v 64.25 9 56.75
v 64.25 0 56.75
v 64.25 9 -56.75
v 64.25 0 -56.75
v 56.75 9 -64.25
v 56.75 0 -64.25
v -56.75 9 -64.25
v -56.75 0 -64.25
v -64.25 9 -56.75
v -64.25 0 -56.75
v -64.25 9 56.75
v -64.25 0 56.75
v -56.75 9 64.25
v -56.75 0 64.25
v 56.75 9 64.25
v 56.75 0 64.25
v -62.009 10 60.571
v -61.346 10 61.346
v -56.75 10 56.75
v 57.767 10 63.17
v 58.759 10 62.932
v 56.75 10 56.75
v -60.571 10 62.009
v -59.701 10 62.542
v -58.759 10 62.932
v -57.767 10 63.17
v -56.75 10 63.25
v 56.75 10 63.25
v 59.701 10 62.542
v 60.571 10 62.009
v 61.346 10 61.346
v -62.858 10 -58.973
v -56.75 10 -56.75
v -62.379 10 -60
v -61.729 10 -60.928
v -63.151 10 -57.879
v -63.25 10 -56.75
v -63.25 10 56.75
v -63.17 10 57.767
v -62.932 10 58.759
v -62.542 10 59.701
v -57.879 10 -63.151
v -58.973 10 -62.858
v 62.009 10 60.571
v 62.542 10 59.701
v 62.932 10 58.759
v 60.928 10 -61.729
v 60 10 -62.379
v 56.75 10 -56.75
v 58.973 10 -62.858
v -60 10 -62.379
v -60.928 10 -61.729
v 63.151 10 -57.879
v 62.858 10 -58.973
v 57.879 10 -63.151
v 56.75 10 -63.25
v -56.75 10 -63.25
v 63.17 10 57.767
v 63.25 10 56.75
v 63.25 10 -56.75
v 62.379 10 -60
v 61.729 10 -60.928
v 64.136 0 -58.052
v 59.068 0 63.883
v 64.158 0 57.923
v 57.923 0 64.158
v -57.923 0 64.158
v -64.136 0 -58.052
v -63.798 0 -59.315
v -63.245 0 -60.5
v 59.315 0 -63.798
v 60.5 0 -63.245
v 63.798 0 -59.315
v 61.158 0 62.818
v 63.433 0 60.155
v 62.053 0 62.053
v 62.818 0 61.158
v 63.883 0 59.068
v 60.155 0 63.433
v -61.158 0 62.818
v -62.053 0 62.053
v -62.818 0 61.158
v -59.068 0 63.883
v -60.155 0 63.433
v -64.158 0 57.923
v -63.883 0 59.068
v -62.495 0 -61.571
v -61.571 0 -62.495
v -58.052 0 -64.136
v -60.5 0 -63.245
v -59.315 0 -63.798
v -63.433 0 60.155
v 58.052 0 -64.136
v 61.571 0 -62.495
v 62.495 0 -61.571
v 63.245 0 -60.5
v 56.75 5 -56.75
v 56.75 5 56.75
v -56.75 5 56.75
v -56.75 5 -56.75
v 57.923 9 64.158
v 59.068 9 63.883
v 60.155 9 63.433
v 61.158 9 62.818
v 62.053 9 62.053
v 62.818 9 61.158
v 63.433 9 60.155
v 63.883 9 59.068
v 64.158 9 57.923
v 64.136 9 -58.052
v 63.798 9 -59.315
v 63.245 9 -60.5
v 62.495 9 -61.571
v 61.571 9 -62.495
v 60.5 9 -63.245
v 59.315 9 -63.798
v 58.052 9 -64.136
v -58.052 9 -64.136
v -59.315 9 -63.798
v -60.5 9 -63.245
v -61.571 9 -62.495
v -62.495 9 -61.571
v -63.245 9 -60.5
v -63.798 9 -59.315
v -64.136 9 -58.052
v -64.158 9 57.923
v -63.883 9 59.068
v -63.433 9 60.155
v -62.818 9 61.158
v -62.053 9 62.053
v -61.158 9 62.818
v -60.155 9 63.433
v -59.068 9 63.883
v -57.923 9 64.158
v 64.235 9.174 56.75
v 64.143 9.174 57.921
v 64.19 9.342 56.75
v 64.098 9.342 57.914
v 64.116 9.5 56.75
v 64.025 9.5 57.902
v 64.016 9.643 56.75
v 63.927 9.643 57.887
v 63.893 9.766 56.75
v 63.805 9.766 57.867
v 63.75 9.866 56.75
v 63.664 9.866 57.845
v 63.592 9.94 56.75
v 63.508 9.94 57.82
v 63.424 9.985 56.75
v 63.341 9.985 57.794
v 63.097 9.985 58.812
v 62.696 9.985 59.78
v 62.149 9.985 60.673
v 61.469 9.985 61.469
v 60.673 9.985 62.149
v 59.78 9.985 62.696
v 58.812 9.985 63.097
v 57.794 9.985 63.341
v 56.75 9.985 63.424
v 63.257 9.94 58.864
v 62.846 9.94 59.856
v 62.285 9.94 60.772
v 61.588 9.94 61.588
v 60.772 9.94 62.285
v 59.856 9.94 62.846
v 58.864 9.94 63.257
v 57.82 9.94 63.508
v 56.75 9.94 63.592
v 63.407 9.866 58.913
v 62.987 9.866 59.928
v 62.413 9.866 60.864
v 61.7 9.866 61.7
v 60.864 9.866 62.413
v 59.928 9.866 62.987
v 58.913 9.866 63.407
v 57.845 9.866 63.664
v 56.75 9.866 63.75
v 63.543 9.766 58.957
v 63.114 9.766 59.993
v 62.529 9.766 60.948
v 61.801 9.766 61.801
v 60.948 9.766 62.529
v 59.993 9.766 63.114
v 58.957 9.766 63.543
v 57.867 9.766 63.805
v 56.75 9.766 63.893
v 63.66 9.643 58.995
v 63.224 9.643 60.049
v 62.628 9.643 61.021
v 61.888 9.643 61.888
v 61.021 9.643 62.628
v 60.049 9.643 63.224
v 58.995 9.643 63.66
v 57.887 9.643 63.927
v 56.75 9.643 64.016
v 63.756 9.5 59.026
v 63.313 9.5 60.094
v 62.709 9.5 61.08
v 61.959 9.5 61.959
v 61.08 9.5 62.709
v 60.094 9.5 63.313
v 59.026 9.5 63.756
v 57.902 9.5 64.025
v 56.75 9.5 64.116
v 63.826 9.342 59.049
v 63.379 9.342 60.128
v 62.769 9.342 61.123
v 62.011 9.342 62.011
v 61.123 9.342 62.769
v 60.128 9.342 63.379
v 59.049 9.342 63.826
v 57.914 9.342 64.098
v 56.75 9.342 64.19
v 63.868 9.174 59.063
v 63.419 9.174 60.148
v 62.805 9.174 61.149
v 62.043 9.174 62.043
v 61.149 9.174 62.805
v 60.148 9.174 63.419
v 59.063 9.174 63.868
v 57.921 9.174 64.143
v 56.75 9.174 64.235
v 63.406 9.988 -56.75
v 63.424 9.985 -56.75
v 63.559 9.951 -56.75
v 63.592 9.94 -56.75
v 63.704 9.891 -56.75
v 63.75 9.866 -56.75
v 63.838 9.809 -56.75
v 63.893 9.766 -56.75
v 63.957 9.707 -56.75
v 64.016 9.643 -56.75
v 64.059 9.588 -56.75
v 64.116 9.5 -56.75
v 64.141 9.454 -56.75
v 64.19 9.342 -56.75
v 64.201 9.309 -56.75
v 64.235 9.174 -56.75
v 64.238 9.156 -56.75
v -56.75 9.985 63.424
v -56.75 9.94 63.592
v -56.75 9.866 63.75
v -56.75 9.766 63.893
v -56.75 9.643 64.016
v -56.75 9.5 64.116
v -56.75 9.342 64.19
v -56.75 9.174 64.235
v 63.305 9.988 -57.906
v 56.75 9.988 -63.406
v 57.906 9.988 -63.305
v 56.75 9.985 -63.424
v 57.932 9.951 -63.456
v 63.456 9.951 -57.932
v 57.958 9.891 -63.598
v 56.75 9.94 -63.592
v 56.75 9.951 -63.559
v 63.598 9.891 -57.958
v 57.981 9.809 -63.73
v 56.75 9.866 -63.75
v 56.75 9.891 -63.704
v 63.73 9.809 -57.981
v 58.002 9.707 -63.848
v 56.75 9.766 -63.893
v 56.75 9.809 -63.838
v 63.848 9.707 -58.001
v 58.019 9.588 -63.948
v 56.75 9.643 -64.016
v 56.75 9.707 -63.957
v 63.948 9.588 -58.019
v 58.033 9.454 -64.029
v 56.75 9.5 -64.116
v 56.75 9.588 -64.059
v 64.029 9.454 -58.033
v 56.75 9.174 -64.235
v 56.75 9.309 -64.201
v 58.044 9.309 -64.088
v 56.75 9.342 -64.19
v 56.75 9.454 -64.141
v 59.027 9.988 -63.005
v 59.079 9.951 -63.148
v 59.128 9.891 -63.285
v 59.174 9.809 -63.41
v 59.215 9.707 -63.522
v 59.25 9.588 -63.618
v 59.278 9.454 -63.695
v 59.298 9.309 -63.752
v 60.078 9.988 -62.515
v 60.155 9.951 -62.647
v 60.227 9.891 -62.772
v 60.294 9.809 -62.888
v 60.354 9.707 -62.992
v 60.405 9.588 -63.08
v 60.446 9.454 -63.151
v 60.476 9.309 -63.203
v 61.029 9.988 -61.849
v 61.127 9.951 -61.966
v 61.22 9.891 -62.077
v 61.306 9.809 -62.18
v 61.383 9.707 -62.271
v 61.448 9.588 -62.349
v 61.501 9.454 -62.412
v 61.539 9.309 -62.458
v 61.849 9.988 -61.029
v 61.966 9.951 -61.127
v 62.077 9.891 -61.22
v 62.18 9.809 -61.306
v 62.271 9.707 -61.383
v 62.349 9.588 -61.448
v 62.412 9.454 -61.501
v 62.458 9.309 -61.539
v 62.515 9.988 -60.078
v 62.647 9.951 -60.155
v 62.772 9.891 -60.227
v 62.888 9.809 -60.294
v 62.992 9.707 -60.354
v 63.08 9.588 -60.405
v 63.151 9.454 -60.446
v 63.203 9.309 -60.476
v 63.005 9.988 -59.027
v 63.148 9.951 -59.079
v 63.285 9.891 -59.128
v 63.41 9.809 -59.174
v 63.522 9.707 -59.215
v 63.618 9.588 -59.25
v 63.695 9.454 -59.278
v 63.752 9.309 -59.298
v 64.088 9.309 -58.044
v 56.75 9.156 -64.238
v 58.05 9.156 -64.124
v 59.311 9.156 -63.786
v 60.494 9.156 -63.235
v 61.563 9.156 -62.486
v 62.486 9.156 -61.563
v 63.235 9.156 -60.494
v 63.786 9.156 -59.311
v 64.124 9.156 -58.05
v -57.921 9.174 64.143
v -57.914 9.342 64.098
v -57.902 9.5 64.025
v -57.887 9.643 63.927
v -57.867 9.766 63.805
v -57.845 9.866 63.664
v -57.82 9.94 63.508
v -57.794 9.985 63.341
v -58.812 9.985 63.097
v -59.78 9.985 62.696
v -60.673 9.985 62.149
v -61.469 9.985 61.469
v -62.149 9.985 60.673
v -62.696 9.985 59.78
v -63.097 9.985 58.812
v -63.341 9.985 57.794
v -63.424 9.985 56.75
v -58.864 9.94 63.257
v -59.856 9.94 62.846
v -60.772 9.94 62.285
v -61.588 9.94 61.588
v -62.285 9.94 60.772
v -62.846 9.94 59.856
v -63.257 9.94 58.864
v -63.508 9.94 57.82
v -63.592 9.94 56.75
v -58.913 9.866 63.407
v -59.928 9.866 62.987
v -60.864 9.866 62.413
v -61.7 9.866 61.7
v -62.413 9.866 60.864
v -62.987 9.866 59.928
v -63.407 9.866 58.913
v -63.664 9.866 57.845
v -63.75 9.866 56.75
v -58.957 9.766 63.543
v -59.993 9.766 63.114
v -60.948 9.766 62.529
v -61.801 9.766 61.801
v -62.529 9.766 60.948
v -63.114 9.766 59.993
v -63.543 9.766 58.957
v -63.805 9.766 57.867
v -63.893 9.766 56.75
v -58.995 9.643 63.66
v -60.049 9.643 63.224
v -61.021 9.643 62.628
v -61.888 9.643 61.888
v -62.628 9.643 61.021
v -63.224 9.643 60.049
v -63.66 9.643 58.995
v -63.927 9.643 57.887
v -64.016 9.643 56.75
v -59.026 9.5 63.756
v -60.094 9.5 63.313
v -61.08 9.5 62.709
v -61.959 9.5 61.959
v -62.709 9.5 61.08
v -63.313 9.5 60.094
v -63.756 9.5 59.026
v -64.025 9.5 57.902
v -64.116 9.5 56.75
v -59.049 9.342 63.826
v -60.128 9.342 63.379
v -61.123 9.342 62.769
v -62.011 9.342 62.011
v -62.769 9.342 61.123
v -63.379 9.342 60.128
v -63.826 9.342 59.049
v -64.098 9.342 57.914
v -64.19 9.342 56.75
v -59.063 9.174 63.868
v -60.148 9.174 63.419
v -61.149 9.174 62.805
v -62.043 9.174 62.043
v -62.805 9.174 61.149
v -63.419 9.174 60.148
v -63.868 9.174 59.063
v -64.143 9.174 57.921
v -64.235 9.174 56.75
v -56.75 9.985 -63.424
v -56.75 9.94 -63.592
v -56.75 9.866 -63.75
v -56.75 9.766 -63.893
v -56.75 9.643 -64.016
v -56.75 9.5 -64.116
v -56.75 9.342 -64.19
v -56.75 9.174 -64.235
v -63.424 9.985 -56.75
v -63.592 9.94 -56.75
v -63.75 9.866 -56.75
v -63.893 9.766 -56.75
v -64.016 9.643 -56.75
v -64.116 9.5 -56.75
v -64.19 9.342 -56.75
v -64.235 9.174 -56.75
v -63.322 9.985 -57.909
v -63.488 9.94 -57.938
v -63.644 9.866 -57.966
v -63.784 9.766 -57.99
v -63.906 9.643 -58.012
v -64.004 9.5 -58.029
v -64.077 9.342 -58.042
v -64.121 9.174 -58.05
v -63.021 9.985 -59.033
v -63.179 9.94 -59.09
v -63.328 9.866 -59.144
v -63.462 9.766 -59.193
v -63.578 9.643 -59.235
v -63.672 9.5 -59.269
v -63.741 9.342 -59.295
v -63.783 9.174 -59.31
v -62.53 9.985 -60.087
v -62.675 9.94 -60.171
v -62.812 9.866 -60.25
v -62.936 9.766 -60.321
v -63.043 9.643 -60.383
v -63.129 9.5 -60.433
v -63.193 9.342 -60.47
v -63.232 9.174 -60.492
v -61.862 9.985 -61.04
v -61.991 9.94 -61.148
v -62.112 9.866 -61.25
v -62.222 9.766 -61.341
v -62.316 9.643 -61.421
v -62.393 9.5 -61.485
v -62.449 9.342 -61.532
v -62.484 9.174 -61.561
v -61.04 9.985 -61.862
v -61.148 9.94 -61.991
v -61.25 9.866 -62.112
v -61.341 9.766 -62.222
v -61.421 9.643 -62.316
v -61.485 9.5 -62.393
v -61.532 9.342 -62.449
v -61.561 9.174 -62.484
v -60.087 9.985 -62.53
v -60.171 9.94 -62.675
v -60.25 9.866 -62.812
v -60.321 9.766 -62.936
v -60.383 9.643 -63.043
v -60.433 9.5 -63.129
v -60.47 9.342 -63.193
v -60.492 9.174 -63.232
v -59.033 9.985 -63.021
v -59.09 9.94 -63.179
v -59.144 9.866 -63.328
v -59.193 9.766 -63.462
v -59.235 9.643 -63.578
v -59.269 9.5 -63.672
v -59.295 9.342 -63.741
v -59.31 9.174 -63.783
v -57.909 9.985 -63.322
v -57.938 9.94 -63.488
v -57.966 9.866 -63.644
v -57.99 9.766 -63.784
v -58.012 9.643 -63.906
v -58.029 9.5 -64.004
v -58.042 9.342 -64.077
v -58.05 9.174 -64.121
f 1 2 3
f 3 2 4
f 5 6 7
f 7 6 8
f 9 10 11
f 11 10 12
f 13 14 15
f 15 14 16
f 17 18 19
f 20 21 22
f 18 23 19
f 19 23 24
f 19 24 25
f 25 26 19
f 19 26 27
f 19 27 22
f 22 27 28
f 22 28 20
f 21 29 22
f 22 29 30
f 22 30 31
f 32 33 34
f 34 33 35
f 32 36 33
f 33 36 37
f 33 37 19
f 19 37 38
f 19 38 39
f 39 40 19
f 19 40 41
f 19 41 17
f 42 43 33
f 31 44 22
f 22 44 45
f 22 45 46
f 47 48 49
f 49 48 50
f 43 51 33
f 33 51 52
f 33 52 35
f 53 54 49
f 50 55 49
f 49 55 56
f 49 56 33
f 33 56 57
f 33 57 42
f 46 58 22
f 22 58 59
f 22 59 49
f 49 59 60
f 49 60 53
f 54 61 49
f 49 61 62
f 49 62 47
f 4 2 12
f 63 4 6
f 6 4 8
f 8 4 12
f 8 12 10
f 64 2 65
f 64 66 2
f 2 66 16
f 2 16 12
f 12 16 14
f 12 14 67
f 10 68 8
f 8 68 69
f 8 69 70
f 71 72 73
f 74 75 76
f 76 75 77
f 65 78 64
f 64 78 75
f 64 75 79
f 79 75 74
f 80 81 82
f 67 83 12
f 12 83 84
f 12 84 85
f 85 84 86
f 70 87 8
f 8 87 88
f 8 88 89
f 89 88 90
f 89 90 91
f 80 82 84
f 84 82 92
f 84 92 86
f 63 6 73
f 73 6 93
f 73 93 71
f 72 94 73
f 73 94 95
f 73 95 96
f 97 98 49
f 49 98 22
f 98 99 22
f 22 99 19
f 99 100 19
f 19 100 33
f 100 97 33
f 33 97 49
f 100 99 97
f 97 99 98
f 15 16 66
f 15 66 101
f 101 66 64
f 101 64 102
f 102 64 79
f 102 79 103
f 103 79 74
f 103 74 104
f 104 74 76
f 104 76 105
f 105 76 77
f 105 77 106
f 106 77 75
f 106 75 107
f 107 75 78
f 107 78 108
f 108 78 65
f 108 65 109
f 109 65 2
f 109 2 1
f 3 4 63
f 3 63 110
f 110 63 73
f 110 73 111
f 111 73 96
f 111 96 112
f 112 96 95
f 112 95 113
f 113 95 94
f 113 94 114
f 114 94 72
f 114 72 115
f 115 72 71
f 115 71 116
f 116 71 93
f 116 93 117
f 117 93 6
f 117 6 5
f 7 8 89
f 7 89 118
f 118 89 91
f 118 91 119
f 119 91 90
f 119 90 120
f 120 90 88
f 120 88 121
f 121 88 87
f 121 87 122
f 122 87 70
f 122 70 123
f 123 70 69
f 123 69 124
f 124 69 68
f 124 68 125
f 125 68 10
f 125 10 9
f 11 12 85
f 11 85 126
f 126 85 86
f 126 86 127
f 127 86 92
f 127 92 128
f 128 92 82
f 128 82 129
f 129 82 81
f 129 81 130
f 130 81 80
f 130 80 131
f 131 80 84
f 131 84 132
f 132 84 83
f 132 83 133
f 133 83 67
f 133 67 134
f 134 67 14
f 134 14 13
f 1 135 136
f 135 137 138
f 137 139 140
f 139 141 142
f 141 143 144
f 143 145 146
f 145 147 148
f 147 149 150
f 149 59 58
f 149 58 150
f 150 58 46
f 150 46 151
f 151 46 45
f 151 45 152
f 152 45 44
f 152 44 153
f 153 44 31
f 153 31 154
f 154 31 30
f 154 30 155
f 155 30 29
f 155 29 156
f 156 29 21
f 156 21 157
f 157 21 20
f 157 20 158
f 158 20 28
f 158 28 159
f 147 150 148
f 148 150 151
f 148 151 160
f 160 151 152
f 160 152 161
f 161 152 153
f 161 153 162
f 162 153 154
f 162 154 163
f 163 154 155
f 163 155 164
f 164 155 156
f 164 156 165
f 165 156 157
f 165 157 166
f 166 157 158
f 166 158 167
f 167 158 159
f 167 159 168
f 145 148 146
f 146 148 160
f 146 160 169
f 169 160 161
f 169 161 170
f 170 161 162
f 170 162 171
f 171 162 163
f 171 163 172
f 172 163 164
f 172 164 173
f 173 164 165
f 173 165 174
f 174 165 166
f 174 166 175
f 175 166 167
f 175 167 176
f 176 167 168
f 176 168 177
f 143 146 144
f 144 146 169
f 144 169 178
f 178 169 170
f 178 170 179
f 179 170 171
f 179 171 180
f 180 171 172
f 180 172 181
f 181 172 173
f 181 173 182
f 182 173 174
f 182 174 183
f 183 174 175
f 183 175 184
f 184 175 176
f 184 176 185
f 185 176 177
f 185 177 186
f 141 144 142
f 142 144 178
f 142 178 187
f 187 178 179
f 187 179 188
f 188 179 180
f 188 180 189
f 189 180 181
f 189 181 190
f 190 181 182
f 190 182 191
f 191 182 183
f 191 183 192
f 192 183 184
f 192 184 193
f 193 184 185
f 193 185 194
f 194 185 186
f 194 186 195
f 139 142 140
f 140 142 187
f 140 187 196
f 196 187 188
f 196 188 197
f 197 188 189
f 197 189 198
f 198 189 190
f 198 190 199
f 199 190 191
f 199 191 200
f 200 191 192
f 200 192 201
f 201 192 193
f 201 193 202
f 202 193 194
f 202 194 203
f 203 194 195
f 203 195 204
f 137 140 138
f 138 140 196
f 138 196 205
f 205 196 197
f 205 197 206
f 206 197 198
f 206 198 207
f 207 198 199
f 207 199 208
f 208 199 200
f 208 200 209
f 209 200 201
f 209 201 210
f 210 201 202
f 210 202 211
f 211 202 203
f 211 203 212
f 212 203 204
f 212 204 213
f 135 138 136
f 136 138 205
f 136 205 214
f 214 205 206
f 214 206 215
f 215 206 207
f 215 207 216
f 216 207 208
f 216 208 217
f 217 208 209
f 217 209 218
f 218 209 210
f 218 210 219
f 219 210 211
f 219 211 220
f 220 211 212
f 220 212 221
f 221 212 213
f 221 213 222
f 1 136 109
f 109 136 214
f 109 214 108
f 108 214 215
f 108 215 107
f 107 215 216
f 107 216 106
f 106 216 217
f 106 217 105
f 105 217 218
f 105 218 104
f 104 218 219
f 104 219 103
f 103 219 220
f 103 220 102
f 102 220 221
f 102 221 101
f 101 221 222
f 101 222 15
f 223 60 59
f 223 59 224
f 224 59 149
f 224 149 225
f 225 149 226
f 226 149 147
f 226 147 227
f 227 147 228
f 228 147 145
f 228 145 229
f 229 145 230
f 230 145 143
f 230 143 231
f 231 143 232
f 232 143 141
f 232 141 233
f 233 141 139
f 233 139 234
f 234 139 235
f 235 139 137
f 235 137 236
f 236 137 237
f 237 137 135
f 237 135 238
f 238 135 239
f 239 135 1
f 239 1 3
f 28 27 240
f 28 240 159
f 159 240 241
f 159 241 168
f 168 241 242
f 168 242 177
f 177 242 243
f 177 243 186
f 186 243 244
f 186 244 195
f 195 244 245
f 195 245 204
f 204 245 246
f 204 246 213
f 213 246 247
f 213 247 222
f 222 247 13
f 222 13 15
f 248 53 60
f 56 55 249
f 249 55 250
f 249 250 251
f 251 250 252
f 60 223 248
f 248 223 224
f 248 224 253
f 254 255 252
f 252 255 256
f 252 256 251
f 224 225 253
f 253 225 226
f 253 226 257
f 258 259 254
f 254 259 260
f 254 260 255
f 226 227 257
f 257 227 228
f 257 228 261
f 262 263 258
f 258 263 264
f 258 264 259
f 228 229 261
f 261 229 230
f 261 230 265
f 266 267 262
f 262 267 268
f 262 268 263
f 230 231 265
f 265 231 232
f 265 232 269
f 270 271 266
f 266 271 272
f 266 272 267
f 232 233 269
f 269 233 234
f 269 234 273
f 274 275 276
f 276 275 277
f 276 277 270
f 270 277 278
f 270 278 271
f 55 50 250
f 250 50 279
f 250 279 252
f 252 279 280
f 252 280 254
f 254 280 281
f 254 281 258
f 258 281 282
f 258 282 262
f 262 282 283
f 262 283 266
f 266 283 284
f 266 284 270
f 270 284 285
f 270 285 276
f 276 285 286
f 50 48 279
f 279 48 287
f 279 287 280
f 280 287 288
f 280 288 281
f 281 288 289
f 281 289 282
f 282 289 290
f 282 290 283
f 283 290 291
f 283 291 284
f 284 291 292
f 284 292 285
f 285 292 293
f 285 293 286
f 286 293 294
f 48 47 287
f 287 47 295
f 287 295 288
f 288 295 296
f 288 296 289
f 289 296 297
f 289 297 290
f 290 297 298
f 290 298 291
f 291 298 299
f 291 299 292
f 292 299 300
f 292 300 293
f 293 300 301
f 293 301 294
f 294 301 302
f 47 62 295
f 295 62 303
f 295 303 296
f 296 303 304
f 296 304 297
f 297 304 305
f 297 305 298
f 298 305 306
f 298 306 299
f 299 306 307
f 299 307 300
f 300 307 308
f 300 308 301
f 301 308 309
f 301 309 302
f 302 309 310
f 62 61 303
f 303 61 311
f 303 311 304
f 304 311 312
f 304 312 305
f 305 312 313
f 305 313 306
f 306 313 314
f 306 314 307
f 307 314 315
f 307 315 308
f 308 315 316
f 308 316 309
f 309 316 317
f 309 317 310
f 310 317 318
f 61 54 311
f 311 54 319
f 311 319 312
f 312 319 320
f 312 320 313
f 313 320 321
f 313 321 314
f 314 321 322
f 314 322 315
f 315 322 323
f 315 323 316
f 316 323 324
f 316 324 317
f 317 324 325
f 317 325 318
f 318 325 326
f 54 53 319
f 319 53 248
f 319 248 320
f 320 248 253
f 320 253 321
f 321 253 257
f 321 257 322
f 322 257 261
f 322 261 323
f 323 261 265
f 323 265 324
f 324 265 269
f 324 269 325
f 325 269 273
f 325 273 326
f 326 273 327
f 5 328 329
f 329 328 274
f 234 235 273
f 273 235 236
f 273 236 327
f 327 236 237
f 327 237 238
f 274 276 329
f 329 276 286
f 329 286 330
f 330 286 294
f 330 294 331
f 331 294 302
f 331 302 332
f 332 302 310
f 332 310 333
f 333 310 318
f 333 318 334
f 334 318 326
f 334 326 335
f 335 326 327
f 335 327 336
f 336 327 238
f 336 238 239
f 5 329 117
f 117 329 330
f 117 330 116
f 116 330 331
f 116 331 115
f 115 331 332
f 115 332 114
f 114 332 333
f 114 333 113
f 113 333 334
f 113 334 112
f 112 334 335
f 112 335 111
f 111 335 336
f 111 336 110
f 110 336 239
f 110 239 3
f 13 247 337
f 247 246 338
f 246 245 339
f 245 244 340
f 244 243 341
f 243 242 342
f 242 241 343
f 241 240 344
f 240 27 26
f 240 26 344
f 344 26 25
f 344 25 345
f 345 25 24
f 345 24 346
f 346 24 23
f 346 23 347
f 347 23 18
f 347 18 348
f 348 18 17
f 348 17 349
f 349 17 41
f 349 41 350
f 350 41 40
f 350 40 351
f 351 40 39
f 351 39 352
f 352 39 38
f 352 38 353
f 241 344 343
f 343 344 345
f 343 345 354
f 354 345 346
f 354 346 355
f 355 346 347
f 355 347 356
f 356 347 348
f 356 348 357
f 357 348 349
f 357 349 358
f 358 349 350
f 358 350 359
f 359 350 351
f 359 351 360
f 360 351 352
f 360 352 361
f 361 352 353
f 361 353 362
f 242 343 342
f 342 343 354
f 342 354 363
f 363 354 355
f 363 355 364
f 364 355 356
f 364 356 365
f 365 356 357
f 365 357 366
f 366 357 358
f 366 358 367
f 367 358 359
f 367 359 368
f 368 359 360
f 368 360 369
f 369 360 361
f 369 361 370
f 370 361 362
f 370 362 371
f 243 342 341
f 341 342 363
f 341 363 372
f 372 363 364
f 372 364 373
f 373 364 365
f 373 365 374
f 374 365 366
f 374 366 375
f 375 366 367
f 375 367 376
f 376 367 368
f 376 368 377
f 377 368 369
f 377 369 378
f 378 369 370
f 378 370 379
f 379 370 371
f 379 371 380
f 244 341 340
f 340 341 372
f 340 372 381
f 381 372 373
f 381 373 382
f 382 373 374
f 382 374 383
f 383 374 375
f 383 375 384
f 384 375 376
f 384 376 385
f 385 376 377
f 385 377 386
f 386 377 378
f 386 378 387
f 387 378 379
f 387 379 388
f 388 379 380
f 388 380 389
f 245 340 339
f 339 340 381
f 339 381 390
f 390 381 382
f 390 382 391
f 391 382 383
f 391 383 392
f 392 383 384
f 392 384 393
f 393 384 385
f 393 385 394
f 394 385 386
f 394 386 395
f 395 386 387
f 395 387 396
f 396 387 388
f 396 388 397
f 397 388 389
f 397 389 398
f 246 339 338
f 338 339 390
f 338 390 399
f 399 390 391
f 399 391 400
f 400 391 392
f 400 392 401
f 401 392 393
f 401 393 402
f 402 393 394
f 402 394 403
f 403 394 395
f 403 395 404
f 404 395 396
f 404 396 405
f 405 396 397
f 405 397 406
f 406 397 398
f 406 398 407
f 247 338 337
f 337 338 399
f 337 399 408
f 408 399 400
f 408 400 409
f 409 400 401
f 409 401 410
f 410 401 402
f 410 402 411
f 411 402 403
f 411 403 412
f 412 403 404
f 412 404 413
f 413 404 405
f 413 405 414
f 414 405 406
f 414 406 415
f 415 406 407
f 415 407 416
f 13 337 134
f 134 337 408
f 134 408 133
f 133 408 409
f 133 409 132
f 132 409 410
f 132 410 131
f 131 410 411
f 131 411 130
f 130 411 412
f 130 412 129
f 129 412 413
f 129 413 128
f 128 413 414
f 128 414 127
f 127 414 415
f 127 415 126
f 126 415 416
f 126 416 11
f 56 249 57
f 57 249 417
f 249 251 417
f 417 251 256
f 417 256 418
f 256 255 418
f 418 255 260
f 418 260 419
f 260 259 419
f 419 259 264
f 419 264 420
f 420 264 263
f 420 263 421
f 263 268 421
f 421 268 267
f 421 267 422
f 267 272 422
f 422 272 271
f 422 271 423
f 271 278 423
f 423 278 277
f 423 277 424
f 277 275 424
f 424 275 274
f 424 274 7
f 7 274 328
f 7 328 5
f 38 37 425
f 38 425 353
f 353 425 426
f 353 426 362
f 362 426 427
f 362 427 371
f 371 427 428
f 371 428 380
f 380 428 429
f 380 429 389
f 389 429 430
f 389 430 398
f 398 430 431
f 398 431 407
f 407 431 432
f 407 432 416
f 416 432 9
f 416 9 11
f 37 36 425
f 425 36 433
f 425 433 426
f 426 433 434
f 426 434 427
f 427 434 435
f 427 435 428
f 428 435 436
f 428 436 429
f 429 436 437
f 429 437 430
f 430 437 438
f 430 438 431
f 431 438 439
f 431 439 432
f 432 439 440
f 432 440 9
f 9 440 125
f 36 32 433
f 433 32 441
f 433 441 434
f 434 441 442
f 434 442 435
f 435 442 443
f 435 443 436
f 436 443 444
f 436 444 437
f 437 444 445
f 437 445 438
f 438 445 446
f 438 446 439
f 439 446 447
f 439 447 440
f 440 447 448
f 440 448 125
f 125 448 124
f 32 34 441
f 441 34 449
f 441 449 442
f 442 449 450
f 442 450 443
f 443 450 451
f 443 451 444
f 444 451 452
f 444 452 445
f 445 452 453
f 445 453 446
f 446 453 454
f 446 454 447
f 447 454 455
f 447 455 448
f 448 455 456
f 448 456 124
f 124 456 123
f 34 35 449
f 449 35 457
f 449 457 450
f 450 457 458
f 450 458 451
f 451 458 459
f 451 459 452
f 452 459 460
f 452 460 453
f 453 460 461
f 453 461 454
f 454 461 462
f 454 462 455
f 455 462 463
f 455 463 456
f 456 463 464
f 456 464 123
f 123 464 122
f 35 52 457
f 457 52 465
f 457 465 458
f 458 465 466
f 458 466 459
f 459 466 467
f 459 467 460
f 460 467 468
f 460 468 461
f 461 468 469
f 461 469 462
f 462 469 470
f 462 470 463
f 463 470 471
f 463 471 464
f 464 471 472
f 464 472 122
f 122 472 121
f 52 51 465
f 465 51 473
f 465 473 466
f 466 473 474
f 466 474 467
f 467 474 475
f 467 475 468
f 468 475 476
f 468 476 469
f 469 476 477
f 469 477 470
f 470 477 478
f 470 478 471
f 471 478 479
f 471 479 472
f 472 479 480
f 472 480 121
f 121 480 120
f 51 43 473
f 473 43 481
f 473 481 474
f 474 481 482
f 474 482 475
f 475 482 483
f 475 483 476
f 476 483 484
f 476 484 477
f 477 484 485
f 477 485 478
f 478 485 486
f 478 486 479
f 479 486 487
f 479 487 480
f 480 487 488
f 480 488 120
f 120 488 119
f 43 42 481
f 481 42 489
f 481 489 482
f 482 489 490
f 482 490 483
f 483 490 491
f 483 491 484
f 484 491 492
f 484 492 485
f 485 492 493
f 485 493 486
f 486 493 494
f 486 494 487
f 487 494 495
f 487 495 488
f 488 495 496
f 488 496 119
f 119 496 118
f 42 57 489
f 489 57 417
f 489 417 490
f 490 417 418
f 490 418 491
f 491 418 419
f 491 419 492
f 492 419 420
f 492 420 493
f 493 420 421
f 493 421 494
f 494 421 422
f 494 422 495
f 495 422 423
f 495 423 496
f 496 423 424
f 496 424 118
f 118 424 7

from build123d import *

# Parameters (mm, degrees)
SKETCH1_W           = 128.5
SKETCH1_H           = 128.5
BOSS_EXTRUDE1_DEPTH = 10
SKETCH2_W           = 113.5
SKETCH2_H           = 113.5
CUT_EXTRUDE3_DEPTH  = 5
FILLET1_R           = 7.5
FILLET2_R           = 1


with BuildPart() as part:
    # Sketch1 → Boss-Extrude1 (new body)
    with BuildSketch(Plane(origin=(0, 0, 0), x_dir=(1, 0, 0), z_dir=(0, 1, 0))):
        Rectangle(SKETCH1_W, SKETCH1_H)
    extrude(amount=BOSS_EXTRUDE1_DEPTH)

    # Sketch2 → Cut-Extrude3 (cut)
    with BuildSketch(Plane(origin=(0, 10, 0), x_dir=(1, 0, 0), z_dir=(0, 1, 0))):
        Rectangle(SKETCH2_W, SKETCH2_H)
    extrude(amount=-CUT_EXTRUDE3_DEPTH, mode=Mode.SUBTRACT)

    # Fillet1
    fillet1_edges = [part.edges().sort_by_distance(p)[0] for p in [
        (64.25, 5, 64.25),
        (-64.25, 5, 64.25),
        (-64.25, 5, -64.25),
        (64.25, 5, -64.25),
    ]]
    fillet(fillet1_edges, radius=FILLET1_R)

    # Fillet2
    fillet2_edges = [part.edges().sort_by_distance(p)[0] for p in [
        (64.25, 10, 0),
        (0, 10, 64.25),
        (0, 10, -64.25),
        (-64.25, 10, 0),
        (-62.053300859, 10, 62.053300859),
        (-62.053300859, 10, -62.053300859),
        (62.053300859, 10, -62.053300859),
        (62.053300859, 10, 62.053300859),
    ]]
    fillet(fillet2_edges, radius=FILLET2_R)


solid = part.part
